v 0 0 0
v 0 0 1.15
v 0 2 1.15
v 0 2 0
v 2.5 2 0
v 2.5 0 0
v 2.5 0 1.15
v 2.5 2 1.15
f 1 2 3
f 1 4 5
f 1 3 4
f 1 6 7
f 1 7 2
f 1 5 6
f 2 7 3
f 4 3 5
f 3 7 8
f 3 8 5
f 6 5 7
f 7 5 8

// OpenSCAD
/* Warning, this is a very basic generator with a lot of approximation 
input data : [TDFN, H9A, 2.5x2.0x1.15mm, 10, , A, C04-01061A]
generated by com.zoubworld.electronics.cad.model3d.Basic
Date : Sun Feb 15 10:50:49 CET 2026
*/

//body
color("black")
translate([0,0,0])
cube([2.5,2.0,1.15], center=false);
